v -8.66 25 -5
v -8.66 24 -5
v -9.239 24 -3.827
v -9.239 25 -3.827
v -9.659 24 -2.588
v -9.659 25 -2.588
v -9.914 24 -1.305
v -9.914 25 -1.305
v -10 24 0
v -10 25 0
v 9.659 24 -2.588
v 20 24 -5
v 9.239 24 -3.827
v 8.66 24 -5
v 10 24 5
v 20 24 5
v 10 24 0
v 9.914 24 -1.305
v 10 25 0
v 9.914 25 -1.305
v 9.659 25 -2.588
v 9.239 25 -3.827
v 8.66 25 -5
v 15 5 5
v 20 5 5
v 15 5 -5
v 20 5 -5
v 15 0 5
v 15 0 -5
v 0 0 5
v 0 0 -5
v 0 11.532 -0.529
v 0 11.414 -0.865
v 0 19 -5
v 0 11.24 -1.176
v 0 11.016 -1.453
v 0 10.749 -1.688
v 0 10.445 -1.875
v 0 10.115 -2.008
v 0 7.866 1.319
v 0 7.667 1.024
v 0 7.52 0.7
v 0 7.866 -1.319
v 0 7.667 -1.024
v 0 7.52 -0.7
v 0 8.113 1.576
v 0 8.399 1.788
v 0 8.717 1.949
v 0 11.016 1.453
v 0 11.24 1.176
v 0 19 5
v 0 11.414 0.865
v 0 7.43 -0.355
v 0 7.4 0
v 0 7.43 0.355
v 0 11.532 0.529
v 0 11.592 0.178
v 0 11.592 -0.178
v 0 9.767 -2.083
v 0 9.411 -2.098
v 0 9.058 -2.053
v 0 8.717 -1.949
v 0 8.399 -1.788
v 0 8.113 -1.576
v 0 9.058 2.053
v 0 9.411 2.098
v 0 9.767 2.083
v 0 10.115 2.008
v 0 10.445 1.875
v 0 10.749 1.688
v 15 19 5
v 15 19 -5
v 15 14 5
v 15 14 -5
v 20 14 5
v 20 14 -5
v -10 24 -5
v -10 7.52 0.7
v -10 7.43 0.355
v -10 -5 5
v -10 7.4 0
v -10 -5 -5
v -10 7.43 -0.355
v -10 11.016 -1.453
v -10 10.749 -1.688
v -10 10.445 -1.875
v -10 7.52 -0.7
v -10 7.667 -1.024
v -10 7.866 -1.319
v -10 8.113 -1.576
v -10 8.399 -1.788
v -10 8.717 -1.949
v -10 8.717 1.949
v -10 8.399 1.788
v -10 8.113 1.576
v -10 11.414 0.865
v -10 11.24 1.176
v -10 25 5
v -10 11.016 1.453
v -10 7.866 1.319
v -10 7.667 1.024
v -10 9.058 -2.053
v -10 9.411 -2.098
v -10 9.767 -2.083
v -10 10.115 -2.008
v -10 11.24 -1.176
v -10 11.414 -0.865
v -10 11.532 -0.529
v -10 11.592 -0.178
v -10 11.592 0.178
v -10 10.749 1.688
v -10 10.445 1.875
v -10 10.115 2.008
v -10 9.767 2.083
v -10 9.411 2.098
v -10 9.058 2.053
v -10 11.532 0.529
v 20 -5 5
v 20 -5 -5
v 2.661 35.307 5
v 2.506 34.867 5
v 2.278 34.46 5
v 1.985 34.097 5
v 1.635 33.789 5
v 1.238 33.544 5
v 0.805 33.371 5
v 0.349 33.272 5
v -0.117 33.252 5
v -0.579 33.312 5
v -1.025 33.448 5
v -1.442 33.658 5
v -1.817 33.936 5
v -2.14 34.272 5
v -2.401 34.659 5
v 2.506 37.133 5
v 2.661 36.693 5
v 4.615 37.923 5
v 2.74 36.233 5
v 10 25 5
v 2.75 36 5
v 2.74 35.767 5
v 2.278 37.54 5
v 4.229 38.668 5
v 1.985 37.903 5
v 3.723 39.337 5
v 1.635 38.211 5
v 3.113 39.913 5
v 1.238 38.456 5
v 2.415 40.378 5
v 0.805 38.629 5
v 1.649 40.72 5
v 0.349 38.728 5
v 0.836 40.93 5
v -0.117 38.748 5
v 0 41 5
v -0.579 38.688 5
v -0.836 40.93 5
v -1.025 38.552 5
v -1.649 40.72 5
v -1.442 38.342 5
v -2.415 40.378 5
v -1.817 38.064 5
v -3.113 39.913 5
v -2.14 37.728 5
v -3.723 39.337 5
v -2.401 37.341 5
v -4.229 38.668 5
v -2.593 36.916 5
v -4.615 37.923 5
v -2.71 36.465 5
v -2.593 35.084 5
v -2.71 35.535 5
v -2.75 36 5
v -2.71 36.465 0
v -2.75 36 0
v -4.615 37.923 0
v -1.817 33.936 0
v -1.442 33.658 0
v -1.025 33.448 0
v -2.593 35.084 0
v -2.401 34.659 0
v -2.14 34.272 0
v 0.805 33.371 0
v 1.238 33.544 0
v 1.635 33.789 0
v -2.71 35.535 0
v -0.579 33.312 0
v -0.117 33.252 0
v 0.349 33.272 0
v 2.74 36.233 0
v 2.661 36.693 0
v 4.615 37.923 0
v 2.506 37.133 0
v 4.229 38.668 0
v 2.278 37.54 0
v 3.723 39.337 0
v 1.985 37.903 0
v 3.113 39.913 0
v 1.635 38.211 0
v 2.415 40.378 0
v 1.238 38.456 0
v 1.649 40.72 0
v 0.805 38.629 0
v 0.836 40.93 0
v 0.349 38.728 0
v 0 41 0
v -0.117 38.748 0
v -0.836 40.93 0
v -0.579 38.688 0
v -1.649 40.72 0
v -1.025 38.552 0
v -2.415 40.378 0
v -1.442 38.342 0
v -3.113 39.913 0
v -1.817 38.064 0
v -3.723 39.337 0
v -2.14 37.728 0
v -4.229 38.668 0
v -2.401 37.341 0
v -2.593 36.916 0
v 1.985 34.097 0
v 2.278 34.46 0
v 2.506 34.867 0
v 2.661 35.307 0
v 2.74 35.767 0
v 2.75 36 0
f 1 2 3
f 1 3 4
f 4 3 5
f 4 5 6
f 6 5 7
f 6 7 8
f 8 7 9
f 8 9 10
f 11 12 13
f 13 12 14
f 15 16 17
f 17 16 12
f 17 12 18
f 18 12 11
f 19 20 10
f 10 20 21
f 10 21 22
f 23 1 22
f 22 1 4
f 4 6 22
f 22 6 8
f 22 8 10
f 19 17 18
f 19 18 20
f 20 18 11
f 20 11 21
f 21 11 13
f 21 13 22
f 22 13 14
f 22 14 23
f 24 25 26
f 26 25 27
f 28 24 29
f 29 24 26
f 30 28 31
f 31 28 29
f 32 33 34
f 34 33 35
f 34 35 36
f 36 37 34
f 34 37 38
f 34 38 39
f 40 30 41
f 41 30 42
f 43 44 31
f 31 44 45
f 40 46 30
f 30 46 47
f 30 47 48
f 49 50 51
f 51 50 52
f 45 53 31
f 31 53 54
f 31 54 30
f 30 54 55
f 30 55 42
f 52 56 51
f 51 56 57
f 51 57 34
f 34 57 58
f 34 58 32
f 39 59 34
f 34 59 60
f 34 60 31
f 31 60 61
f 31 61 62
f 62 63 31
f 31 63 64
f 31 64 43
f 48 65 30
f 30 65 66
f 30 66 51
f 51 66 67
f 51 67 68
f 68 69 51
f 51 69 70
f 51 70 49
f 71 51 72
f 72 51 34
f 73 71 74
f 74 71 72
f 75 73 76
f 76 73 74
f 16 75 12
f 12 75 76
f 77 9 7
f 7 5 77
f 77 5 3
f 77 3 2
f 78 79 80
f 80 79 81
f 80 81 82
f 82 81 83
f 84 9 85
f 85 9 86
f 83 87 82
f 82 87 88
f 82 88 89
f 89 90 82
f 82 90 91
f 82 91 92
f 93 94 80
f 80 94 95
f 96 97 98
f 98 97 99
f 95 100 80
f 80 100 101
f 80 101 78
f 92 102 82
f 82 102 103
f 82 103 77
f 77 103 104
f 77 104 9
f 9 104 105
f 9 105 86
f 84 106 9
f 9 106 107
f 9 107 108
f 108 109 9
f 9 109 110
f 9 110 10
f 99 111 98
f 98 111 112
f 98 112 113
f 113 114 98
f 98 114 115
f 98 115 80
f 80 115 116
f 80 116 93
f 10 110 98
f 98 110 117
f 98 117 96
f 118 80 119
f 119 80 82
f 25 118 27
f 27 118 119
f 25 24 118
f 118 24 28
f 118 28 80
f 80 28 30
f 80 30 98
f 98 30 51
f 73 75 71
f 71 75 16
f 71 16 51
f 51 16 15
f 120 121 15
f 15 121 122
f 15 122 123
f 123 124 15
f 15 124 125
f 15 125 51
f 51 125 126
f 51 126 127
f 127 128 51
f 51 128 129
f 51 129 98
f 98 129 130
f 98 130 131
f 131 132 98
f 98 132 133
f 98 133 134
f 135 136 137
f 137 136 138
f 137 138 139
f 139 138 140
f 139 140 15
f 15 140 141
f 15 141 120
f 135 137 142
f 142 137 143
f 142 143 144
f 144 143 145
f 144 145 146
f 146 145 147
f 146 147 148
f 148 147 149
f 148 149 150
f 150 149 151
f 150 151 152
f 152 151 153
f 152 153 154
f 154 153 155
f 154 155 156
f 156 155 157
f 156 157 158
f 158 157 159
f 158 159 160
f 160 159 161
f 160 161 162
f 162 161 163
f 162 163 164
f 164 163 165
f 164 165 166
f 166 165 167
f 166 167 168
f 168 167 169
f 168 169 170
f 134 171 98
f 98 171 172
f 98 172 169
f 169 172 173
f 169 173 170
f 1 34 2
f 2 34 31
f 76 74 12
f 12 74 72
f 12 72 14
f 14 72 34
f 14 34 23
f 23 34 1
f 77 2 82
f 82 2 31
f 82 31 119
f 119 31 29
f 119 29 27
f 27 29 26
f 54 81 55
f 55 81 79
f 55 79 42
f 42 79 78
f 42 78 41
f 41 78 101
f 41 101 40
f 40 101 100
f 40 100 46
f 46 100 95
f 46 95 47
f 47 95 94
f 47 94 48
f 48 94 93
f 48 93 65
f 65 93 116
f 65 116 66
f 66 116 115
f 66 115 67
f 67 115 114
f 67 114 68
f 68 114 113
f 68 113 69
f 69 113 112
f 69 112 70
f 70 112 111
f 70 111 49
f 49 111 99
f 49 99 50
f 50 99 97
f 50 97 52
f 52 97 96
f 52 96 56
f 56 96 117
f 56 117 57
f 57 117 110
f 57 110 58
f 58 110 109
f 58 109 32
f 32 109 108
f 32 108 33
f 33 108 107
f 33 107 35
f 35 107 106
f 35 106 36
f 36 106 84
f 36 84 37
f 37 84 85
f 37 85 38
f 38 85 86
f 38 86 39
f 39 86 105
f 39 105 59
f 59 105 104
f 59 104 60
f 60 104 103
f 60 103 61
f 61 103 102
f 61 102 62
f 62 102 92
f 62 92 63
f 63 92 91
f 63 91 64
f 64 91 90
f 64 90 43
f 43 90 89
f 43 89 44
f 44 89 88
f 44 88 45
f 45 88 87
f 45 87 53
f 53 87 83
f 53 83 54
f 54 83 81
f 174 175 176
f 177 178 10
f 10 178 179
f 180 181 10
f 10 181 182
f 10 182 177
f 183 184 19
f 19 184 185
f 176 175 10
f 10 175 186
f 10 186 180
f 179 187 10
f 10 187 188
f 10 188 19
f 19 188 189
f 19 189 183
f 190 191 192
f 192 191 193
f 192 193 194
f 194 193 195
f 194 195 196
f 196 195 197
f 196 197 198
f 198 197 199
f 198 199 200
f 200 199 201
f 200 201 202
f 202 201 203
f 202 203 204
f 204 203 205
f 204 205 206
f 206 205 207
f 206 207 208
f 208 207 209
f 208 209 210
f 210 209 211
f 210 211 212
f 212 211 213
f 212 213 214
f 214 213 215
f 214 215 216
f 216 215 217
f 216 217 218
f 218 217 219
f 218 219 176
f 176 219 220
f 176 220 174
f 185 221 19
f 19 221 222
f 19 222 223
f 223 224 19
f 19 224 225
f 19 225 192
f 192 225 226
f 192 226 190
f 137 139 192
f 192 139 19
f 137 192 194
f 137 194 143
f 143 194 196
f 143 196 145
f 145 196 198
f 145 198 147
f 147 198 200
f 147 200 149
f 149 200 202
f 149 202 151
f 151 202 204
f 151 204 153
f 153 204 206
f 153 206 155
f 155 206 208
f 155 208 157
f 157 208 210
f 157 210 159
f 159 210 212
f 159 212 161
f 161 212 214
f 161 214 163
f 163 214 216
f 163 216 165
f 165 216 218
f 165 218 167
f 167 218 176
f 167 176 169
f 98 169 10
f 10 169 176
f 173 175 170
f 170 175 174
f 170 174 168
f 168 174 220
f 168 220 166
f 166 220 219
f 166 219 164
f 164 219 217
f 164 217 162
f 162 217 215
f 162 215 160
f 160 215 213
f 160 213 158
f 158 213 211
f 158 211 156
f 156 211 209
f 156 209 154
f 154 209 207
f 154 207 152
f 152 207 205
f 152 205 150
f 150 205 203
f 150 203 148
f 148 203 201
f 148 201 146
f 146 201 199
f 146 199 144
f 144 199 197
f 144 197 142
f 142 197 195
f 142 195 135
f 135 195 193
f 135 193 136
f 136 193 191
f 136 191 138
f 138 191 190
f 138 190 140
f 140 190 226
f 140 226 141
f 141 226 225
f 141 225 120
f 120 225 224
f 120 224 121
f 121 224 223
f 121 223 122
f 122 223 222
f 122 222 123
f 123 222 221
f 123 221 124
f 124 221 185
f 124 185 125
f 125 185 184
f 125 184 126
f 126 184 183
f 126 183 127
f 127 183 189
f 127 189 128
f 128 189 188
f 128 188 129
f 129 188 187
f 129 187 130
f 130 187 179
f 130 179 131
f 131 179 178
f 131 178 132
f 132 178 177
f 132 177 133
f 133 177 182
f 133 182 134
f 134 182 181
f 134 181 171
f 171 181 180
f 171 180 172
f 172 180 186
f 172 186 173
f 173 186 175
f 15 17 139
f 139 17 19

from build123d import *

# Parameters (mm, degrees)
BOSS_EXTRUDE1_DEPTH = 5
SKETCH2_R           = 2.1
CUT_EXTRUDE1_DEPTH  = 10
SKETCH3_R           = 10
BOSS_EXTRUDE2_DEPTH = 1
SKETCH4_R           = 2.75
BOSS_EXTRUDE3_DEPTH = 5
SKETCH5_W           = 50
SKETCH5_H           = 30
SKETCH5_W_2         = 30
SKETCH5_H_2         = 10
CUT_EXTRUDE2_DEPTH  = 52.14684741
BOSS_EXTRUDE4_START = 1
BOSS_EXTRUDE4_DEPTH = 1


with BuildPart() as part:
    # Sketch1 → Boss-Extrude1 (new, symmetric)
    with BuildSketch(Plane.XY):
        Polygon((15, 5), (15, 0), (0, 0), (0, 19), (15, 19), (15, 14), (20, 14), (20, 24), (-10, 24), (-10, -5), (20, -5), (20, 5), align=None)
    extrude(amount=BOSS_EXTRUDE1_DEPTH, both=True)

    # Sketch2 → Cut-Extrude1 (cut)
    with BuildSketch(Plane.ZY.offset(10)):
        with Locations(Location((0, 9.5, 0), (0, 0, 270))):
            Circle(SKETCH2_R)
    extrude(amount=-CUT_EXTRUDE1_DEPTH, mode=Mode.SUBTRACT)

    # Sketch3 → Boss-Extrude2 (add)
    with BuildSketch(Plane(origin=(0, 24, 0), x_dir=(1, 0, 0), z_dir=(0, 1, 0))):
        with Locations(Location((0, 0, 0), (0, 0, 180))):
            Circle(SKETCH3_R)
    extrude(amount=BOSS_EXTRUDE2_DEPTH)

    # Sketch4 → Boss-Extrude3 (add)
    with BuildSketch(Plane.XY):
        with BuildLine():
            Line((10, 25), (-10, 25))
            Line((-10, 25), (-4.615384615, 37.923076923))
            ThreePointArc((-4.615384615, 37.923076923), (0, 41), (4.615384615, 37.923076923))
            Line((4.615384615, 37.923076923), (10, 25))
        make_face()
        with Locations((0, 36)):
            Circle(SKETCH4_R, mode=Mode.SUBTRACT)
    extrude(amount=BOSS_EXTRUDE3_DEPTH)

    # Sketch5 → Cut-Extrude2 (cut, through all)
    with BuildSketch(Plane.XZ.offset(5)):
        with Locations((5, 0)):
            Rectangle(SKETCH5_W, SKETCH5_H)
        with Locations((5, 0)):
            Rectangle(SKETCH5_W_2, SKETCH5_H_2, mode=Mode.SUBTRACT)
    extrude(amount=-CUT_EXTRUDE2_DEPTH, mode=Mode.SUBTRACT)

    # Sketch6 → Boss-Extrude4 (add)
    with BuildSketch(Plane.XZ.offset(-25).offset(BOSS_EXTRUDE4_START)):
        with BuildLine():
            Line((10, 5), (8.660254038, 5))
            ThreePointArc((8.660254038, 5), (9.659258263, 2.588190451), (10, 0))
            Line((10, 0), (10, 5))
        make_face()
        with BuildLine():
            Line((-10, 5), (-10, 0))
            ThreePointArc((-10, 0), (-9.659258263, 2.588190451), (-8.660254038, 5))
            Line((-8.660254038, 5), (-10, 5))
        make_face()
    extrude(amount=-BOSS_EXTRUDE4_DEPTH)


solid = part.part
